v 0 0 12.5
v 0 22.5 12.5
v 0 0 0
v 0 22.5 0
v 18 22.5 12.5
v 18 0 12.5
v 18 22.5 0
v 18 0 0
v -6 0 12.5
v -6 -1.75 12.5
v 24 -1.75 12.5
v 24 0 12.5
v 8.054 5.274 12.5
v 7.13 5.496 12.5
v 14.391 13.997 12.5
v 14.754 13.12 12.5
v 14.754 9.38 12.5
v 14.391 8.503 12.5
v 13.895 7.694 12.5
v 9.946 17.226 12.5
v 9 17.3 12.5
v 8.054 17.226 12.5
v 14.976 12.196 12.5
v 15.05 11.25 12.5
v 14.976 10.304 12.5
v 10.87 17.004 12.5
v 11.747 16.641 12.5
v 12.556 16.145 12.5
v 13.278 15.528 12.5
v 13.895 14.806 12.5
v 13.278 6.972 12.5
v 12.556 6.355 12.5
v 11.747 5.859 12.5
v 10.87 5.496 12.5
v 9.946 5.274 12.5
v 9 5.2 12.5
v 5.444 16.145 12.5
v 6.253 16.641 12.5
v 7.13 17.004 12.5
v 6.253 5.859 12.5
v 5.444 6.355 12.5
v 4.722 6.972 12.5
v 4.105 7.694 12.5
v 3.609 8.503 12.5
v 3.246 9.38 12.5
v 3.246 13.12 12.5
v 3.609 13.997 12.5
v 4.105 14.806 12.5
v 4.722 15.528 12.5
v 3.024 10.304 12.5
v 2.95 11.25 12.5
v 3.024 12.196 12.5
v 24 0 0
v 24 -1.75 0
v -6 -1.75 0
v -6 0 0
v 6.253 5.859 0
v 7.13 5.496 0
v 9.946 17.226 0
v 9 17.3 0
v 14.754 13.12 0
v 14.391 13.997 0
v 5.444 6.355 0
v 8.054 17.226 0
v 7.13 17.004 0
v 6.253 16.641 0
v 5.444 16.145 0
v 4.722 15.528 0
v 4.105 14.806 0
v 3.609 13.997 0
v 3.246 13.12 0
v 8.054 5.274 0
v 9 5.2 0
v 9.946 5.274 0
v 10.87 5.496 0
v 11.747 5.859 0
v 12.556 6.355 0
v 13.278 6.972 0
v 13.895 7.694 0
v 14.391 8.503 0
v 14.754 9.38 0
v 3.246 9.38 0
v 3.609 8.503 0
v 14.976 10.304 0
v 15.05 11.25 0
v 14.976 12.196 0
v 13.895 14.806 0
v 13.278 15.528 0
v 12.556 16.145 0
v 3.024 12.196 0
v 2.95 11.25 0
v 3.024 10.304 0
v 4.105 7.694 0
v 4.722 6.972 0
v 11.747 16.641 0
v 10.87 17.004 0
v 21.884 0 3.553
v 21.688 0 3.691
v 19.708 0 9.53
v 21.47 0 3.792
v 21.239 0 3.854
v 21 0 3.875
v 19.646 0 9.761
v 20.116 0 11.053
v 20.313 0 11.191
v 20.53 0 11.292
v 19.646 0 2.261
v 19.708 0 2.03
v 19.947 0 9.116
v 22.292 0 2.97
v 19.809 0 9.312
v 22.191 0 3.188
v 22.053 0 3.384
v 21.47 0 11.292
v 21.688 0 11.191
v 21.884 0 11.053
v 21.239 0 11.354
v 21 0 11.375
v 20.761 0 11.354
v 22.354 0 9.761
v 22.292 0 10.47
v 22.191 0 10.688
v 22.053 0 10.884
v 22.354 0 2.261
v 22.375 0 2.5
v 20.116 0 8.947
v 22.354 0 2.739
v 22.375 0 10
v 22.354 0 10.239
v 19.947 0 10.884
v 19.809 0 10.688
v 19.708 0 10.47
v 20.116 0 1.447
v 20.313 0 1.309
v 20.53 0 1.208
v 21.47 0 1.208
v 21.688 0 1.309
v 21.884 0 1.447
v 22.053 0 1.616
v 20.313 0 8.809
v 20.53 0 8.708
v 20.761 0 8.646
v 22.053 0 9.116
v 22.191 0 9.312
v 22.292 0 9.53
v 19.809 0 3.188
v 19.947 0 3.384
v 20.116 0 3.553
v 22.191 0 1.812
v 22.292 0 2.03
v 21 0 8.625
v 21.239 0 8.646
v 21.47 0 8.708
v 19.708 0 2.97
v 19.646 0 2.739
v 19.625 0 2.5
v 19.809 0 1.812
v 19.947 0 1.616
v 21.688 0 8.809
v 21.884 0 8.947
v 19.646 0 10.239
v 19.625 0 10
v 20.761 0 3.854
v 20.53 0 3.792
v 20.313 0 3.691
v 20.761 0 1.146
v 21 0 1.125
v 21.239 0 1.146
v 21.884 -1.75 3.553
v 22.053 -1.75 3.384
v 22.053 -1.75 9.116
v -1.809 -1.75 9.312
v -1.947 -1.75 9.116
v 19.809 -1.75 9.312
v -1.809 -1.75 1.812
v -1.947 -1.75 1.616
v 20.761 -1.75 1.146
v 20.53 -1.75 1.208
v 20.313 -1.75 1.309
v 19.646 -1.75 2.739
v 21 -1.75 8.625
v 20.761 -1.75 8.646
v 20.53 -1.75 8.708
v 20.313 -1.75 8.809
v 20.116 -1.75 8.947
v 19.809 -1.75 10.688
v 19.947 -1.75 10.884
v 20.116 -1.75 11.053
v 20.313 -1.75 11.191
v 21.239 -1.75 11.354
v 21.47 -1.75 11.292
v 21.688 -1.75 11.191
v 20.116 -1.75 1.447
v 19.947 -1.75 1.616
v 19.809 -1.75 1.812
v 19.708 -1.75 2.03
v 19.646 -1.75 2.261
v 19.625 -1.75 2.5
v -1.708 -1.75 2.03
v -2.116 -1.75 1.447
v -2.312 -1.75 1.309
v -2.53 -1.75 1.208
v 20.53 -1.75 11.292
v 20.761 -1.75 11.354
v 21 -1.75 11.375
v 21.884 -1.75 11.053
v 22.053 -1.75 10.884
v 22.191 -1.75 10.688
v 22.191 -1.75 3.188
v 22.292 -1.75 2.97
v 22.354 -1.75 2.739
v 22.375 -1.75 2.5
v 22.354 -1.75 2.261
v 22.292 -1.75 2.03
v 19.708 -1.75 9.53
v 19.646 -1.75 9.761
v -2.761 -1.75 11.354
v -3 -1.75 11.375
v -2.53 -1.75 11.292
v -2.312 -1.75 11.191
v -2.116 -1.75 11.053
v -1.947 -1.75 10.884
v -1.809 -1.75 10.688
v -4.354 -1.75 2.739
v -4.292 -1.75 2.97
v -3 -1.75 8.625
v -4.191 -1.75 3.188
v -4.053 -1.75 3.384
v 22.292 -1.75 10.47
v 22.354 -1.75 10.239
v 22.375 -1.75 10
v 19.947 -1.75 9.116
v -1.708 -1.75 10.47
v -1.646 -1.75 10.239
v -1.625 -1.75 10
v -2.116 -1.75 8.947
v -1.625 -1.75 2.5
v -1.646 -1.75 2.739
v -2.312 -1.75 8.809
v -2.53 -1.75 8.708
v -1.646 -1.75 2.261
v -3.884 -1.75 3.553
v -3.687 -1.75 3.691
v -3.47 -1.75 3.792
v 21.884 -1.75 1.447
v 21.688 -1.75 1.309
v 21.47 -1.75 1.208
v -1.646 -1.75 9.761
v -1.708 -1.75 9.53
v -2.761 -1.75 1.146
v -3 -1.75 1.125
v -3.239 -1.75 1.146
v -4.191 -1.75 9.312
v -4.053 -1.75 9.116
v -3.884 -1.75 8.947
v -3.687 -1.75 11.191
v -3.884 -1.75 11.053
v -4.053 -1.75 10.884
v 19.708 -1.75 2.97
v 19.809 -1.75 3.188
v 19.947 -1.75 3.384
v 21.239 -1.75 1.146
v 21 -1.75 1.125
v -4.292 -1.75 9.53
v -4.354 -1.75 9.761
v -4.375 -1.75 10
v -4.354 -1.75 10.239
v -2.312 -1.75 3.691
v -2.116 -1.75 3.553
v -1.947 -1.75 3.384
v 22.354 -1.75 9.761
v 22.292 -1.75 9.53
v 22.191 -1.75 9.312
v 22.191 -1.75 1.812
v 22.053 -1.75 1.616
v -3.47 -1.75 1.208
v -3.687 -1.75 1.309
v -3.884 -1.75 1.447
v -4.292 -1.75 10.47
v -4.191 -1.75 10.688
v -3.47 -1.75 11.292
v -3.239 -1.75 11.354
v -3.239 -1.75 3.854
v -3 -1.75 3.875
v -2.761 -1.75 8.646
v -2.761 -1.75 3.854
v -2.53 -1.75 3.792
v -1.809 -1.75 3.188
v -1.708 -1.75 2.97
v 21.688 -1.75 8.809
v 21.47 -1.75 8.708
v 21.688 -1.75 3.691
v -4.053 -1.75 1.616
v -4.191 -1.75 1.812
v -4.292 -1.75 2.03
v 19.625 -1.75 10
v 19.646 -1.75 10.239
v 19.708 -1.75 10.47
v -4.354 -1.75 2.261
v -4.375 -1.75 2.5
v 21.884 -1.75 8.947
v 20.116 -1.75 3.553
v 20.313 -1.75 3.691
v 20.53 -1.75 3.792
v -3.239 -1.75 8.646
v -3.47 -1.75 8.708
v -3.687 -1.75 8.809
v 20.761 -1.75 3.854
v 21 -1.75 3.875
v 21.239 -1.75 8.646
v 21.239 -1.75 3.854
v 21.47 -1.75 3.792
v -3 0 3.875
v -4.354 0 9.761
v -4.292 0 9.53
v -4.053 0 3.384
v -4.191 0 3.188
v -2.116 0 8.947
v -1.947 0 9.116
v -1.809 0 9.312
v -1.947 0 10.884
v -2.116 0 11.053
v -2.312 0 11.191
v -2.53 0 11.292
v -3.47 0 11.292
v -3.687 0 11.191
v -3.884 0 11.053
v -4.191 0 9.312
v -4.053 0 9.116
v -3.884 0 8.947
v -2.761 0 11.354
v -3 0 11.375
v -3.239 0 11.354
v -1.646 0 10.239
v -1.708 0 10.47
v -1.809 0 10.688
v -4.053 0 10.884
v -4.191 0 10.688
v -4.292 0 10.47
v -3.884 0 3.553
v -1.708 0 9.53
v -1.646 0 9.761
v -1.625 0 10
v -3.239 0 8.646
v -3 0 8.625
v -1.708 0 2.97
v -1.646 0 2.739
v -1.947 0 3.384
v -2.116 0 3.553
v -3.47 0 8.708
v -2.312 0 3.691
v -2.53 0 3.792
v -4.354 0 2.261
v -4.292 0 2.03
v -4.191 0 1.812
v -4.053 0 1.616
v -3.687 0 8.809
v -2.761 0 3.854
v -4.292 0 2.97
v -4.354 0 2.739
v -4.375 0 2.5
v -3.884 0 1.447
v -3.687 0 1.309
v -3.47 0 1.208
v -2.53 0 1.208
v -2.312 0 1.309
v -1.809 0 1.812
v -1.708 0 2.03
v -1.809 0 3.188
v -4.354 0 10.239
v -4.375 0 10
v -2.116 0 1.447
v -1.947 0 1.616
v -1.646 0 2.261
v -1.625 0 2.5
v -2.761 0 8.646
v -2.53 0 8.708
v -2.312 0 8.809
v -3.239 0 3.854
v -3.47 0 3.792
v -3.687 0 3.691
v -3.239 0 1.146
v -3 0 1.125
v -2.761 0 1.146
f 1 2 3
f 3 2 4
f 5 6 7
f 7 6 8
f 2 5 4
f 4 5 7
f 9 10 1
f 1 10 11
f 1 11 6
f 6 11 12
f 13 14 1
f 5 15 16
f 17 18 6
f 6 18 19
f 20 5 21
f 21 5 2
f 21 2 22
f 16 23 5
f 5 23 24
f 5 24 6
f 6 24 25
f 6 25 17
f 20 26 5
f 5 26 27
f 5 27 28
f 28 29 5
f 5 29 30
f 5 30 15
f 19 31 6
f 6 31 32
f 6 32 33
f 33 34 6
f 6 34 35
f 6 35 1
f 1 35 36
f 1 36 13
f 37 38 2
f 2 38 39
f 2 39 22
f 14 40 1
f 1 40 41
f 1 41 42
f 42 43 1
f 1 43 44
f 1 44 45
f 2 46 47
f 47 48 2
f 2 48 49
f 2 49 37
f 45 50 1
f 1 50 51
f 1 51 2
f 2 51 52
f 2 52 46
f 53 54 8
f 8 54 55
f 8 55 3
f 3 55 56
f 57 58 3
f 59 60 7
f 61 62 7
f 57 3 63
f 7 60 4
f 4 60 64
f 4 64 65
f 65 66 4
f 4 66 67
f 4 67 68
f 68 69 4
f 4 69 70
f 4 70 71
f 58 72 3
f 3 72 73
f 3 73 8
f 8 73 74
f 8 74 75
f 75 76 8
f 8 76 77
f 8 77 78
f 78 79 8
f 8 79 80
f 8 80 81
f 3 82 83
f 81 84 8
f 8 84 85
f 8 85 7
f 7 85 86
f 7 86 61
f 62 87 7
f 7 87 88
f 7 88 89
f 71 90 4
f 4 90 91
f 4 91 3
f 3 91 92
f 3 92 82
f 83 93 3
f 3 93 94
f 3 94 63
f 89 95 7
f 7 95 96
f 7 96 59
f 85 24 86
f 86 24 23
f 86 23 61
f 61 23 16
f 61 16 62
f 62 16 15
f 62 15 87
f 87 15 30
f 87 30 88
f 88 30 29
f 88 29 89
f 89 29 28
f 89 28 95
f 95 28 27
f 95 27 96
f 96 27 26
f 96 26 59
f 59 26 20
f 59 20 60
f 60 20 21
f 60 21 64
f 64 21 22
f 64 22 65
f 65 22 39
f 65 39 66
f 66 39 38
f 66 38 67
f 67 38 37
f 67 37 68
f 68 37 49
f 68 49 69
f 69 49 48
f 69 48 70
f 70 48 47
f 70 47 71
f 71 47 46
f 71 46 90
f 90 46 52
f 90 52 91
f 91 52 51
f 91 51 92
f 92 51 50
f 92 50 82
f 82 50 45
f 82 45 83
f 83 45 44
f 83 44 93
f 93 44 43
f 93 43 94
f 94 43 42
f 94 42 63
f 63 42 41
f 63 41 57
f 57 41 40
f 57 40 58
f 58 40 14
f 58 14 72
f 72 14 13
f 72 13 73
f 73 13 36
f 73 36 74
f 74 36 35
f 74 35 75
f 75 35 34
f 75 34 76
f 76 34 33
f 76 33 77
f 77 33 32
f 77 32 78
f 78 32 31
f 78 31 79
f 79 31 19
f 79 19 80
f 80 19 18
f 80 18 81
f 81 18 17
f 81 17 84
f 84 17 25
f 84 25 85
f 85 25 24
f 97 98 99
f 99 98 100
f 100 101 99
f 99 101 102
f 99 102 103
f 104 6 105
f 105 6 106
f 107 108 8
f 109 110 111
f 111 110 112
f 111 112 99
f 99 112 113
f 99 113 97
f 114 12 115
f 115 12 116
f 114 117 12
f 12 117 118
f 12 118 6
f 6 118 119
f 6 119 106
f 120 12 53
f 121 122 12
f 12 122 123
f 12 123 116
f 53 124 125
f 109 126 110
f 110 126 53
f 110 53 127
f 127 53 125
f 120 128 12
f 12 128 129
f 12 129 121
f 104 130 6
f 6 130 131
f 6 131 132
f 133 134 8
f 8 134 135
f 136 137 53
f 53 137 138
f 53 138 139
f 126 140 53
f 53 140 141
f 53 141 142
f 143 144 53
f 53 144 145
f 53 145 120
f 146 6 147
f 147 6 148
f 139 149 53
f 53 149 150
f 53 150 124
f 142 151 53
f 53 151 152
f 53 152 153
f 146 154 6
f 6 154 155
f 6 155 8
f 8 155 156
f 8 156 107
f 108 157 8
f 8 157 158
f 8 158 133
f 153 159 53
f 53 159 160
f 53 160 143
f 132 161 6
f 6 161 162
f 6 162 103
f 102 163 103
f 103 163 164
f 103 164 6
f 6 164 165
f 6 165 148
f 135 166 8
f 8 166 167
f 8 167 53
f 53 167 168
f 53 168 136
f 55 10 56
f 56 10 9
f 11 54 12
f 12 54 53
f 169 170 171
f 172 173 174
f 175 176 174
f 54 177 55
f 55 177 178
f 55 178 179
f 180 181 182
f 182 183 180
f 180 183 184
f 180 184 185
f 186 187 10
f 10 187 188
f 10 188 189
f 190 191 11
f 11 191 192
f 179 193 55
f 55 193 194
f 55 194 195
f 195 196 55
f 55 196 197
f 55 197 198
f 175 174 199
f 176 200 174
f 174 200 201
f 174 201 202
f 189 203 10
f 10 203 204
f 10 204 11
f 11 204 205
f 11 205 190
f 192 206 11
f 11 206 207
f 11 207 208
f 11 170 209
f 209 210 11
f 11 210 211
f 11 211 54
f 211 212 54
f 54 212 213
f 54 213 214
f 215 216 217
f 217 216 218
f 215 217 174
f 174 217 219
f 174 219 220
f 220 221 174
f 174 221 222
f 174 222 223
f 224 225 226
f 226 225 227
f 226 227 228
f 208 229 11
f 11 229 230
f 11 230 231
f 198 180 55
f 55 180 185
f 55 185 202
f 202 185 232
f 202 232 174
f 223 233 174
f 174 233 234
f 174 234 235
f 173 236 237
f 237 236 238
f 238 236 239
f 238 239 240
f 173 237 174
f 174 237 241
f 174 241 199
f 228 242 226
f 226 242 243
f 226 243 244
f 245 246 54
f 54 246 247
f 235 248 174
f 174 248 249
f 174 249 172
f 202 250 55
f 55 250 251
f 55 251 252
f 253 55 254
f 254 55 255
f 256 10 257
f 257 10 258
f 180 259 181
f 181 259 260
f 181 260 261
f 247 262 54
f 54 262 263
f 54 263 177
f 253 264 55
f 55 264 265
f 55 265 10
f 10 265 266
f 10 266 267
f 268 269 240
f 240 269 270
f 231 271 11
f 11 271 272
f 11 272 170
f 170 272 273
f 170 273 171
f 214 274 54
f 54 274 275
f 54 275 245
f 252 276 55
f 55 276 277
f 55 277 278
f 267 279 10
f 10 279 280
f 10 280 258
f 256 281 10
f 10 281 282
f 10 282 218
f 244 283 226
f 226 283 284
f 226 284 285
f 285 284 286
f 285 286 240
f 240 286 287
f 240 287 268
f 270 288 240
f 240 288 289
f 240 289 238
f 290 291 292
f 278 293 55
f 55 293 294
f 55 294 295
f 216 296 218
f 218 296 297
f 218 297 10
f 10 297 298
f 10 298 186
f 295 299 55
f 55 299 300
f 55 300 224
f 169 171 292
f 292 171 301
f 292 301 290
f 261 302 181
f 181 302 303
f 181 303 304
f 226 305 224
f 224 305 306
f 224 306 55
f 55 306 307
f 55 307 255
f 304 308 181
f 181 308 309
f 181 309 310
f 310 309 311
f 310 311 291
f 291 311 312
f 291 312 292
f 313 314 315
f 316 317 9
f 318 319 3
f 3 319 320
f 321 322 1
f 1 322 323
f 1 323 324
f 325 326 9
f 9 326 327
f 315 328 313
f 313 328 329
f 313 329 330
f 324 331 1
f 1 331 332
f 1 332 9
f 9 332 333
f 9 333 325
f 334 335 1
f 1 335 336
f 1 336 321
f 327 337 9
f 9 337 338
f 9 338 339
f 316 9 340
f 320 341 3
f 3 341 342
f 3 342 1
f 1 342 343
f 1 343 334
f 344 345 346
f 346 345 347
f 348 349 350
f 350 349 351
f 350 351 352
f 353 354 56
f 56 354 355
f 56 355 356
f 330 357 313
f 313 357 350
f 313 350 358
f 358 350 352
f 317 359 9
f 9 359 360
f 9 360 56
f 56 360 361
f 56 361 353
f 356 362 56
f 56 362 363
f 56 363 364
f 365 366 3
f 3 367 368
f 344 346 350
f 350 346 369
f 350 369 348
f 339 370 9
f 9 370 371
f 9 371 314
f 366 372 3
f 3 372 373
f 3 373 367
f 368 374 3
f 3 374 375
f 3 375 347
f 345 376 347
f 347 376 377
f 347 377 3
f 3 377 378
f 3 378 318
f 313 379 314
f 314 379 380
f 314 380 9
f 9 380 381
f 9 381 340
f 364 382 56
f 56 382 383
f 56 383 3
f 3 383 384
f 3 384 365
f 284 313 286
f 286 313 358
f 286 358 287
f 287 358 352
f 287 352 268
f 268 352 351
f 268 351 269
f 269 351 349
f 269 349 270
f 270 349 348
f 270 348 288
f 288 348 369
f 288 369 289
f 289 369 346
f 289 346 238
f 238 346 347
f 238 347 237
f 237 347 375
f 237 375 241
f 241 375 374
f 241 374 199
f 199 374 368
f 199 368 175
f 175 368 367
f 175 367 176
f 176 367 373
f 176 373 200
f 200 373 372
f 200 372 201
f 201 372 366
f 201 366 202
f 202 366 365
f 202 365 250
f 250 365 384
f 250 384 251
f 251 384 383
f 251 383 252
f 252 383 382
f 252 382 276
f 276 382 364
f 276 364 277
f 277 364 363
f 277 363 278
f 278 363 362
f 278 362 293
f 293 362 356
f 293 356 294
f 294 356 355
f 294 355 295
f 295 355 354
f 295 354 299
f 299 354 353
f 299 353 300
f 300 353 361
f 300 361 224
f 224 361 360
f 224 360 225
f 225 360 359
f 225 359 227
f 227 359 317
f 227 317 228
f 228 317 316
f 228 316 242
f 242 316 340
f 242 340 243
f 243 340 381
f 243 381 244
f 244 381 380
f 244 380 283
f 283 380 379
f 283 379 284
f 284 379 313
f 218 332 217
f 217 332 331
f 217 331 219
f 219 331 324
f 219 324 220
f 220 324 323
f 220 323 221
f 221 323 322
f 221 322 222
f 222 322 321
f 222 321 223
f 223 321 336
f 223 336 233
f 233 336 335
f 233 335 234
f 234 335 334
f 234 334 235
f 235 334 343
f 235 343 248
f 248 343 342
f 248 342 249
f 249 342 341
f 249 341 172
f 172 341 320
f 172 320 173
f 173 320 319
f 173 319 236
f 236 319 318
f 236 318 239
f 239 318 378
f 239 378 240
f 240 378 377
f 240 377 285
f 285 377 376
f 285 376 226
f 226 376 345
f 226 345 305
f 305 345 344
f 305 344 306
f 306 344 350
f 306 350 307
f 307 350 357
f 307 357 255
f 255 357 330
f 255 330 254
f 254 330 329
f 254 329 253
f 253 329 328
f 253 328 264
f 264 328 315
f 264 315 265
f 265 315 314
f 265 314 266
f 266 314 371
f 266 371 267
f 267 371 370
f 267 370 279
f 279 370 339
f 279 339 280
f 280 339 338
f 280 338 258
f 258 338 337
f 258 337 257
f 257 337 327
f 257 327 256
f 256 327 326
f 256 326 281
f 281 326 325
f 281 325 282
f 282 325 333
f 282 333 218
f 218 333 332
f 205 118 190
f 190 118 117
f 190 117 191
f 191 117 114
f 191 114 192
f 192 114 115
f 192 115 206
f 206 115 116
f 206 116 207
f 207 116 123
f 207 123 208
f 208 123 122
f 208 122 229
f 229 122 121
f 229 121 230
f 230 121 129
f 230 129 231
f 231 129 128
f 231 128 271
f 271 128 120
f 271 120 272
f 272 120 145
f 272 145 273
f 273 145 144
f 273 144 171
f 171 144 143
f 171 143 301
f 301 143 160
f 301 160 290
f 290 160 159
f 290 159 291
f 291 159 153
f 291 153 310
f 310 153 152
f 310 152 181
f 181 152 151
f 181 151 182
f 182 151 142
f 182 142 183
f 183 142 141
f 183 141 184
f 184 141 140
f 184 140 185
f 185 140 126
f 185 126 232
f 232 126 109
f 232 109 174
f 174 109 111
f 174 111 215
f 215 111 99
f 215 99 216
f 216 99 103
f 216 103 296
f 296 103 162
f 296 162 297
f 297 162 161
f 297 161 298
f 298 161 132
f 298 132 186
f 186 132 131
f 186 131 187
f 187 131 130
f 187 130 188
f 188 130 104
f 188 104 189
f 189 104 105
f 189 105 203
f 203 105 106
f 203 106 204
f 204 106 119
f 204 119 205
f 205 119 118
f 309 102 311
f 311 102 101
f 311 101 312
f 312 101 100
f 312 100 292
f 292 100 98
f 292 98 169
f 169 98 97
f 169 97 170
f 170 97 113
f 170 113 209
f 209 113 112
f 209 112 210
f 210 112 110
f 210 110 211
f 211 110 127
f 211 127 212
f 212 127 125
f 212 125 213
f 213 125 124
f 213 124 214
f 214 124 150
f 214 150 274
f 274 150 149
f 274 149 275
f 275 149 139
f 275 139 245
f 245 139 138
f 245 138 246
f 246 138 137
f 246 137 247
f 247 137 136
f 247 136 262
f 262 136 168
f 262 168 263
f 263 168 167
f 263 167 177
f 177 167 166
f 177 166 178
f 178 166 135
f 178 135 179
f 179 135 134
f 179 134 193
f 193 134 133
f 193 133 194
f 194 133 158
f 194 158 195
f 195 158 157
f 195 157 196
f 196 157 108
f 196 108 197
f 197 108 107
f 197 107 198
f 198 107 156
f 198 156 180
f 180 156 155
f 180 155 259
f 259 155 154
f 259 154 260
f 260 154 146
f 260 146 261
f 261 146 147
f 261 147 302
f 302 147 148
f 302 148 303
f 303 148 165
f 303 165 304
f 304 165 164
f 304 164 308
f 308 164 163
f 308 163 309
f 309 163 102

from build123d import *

# Parameters (mm, degrees)
SKETCH3_W           = 18
SKETCH3_H           = 22.5
BRACKETBASE_DEPTH   = 12.5
SKETCH4_R           = 6.05
HOLE_DEPTH          = 13.5
SKETCH5_W           = 30
SKETCH5_H           = 12.5
TABBASE_DEPTH       = 1.75
SKETCH6_R           = 1.375
MOUNTINGHOLES_DEPTH = 2.75


with BuildPart() as part:
    # Sketch3 → bracketBase (new body)
    with BuildSketch(Plane.XY):
        with Locations((9, 11.25)):
            Rectangle(SKETCH3_W, SKETCH3_H)
    extrude(amount=BRACKETBASE_DEPTH)

    # Sketch4 → hole (cut, through all)
    with BuildSketch(Plane.XY.offset(12.5)):
        with Locations((9, 11.25)):
            Circle(SKETCH4_R)
    extrude(amount=-HOLE_DEPTH, mode=Mode.SUBTRACT)

    # Sketch5 → tabBase (add)
    with BuildSketch(Plane.XZ):
        with Locations((9, 6.25)):
            Rectangle(SKETCH5_W, SKETCH5_H)
    extrude(amount=TABBASE_DEPTH)

    # Sketch6 → mountingHoles (cut, through all)
    with BuildSketch(Plane(origin=(0, 0, 0), x_dir=(1, 0, 0), z_dir=(0, 1, 0))):
        with Locations((-3, -2.5)):
            Circle(SKETCH6_R)
        with Locations((-3, -10)):
            Circle(SKETCH6_R)
        with Locations((21, -2.5)):
            Circle(SKETCH6_R)
        with Locations((21, -10)):
            Circle(SKETCH6_R)
    extrude(amount=-MOUNTINGHOLES_DEPTH, mode=Mode.SUBTRACT)


solid = part.part
